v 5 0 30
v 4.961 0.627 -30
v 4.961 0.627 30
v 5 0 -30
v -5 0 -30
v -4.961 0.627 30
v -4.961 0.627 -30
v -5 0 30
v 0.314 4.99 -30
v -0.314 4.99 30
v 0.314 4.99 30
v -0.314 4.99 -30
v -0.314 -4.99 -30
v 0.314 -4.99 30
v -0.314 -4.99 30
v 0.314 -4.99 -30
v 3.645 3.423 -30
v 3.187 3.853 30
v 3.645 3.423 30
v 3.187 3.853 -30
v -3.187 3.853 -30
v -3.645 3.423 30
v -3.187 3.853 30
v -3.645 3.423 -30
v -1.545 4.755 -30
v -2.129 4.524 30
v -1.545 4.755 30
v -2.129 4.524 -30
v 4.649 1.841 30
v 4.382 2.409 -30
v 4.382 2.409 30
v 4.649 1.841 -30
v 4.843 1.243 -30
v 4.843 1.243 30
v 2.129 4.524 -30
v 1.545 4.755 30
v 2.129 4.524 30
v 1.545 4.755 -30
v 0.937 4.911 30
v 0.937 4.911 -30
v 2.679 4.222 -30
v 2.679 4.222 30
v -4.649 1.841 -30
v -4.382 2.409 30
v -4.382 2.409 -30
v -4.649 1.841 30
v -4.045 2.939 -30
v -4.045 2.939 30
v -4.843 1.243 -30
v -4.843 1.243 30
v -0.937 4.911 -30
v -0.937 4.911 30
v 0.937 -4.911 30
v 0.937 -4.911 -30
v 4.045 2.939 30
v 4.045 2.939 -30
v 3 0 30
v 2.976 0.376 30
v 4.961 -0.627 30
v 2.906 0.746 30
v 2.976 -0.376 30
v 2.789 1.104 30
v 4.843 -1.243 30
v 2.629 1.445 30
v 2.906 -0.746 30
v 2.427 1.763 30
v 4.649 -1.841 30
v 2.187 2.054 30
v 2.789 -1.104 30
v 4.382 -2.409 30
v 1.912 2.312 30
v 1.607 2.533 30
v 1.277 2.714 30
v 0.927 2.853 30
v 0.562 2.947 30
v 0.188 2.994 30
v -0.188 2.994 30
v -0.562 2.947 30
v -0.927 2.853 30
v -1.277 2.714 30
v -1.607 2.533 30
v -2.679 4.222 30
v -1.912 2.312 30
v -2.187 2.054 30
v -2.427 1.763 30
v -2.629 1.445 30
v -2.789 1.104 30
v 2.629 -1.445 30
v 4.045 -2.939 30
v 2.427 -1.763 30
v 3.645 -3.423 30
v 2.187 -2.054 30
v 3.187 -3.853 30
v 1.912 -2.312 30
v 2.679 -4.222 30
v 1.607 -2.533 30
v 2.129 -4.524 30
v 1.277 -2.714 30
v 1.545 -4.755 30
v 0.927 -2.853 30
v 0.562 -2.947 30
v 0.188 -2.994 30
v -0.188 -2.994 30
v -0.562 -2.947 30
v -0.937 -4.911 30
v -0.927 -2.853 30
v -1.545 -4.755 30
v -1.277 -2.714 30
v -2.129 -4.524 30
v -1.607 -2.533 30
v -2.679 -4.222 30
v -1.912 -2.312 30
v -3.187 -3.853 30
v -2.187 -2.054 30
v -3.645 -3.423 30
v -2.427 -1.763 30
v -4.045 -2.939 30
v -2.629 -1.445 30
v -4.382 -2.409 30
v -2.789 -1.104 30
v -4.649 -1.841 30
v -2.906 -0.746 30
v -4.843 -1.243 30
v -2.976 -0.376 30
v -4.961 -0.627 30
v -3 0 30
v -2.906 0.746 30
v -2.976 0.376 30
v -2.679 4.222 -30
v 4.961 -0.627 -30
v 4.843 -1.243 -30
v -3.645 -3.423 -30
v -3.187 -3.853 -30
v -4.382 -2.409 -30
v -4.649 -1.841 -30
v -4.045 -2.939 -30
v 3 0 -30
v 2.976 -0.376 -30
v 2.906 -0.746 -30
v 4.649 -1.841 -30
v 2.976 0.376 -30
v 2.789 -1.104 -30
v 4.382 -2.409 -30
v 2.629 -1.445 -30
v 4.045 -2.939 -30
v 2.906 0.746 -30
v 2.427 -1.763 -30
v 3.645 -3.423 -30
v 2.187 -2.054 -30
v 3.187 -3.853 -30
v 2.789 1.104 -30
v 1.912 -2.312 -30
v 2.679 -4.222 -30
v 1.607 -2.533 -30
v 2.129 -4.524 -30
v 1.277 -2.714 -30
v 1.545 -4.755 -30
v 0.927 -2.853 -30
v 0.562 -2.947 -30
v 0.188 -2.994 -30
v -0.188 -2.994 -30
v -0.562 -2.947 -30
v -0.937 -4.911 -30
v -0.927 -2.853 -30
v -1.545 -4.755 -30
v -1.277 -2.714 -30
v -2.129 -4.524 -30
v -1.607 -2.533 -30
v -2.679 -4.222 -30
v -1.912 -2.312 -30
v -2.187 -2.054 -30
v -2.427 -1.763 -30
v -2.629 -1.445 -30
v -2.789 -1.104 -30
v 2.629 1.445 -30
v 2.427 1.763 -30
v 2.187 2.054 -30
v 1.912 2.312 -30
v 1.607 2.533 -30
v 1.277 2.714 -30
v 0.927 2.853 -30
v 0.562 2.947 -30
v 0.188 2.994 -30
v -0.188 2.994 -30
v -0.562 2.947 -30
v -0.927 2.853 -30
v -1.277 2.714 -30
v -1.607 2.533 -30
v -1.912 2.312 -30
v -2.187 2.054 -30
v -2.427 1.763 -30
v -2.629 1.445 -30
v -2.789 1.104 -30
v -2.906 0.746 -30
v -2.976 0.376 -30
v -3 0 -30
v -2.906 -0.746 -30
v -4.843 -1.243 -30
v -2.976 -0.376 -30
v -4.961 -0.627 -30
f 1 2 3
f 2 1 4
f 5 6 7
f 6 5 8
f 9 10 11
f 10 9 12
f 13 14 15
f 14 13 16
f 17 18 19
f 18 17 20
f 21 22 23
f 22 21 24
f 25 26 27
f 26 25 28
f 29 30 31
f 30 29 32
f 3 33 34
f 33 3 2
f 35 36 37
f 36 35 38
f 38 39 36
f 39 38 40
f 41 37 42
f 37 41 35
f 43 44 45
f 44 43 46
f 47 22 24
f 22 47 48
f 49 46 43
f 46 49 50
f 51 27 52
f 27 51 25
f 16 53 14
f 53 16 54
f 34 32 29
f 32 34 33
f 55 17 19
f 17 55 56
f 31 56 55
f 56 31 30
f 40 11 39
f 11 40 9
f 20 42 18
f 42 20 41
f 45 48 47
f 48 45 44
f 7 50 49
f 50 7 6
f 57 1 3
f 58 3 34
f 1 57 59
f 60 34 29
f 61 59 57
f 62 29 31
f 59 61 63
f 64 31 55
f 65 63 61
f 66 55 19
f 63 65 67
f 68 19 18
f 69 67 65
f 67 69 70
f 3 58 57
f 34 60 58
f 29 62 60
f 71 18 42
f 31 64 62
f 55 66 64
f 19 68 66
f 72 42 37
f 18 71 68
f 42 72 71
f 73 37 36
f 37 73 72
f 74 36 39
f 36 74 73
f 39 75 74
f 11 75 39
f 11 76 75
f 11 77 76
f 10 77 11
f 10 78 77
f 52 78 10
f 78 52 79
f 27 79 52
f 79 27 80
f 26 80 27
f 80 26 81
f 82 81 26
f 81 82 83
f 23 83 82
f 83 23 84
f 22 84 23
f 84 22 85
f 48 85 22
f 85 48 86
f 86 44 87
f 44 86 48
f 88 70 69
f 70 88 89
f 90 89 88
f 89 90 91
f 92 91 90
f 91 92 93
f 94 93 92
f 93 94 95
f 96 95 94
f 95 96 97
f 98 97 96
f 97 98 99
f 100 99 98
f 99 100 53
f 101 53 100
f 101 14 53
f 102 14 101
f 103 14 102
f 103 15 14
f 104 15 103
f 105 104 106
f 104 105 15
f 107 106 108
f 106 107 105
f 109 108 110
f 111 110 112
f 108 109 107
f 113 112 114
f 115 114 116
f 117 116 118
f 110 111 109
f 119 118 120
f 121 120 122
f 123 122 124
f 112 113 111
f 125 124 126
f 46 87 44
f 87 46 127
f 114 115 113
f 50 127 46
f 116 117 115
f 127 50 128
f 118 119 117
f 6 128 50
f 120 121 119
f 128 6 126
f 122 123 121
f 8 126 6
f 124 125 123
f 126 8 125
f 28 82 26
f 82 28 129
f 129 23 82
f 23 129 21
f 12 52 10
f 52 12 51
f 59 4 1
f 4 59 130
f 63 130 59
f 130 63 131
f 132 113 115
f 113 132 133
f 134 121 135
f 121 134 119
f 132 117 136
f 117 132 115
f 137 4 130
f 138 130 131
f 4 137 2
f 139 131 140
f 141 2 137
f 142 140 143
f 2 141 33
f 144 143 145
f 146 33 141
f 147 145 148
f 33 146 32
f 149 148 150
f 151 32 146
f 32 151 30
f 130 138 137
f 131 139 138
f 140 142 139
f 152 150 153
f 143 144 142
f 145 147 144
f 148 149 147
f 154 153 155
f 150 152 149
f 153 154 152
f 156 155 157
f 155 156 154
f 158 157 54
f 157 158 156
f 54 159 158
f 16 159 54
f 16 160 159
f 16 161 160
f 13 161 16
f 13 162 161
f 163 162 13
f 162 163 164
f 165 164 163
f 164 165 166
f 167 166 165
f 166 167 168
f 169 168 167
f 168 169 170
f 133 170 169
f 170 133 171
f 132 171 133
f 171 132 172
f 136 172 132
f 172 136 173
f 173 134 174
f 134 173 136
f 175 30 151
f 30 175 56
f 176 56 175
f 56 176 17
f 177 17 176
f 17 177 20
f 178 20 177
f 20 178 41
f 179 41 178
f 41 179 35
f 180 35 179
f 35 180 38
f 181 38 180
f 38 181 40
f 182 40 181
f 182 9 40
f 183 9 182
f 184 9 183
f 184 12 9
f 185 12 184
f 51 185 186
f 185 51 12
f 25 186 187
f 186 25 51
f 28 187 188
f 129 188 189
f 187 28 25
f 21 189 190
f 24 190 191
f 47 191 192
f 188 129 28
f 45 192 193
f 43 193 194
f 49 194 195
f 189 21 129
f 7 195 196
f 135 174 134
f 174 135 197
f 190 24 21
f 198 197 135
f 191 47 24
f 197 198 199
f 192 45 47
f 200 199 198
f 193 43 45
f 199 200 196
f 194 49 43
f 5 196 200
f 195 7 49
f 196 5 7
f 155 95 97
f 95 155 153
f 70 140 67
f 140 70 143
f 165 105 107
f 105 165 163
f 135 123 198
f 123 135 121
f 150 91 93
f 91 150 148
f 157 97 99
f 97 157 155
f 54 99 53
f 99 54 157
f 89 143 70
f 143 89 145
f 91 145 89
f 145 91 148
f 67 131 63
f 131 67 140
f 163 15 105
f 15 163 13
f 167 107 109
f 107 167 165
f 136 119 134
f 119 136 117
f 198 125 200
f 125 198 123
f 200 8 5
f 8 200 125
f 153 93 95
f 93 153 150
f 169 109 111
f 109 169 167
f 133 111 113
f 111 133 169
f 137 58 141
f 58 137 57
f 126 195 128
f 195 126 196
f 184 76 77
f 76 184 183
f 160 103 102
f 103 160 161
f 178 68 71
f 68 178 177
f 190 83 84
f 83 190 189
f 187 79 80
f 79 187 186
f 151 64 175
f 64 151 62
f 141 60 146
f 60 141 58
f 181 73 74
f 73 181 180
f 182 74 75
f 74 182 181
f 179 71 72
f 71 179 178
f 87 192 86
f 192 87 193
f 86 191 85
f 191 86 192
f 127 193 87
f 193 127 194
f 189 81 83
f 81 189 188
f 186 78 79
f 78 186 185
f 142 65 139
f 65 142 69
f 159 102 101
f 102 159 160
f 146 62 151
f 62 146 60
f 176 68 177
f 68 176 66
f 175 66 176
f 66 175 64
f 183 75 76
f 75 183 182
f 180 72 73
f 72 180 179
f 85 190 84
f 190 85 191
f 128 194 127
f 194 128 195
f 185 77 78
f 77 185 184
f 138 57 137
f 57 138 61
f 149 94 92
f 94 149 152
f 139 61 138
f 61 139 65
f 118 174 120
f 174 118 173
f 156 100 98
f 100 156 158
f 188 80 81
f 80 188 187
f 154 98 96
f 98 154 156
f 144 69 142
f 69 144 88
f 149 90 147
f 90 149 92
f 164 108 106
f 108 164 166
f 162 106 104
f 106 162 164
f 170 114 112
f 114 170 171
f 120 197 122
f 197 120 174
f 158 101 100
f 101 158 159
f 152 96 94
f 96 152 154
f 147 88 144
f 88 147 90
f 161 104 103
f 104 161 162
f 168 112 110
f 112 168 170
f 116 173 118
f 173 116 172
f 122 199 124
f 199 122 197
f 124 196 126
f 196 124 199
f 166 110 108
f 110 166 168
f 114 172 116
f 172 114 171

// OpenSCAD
$fn = 50;


difference() {
	union() {
		translate(v = [0, 0, -30.0000000000]) {
			cylinder(h = 60, r = 5.0000000000);
		}
	}
	union() {
		translate(v = [0, 0, -100.0000000000]) {
			cylinder(h = 200, r = 3);
		}
	}
}
